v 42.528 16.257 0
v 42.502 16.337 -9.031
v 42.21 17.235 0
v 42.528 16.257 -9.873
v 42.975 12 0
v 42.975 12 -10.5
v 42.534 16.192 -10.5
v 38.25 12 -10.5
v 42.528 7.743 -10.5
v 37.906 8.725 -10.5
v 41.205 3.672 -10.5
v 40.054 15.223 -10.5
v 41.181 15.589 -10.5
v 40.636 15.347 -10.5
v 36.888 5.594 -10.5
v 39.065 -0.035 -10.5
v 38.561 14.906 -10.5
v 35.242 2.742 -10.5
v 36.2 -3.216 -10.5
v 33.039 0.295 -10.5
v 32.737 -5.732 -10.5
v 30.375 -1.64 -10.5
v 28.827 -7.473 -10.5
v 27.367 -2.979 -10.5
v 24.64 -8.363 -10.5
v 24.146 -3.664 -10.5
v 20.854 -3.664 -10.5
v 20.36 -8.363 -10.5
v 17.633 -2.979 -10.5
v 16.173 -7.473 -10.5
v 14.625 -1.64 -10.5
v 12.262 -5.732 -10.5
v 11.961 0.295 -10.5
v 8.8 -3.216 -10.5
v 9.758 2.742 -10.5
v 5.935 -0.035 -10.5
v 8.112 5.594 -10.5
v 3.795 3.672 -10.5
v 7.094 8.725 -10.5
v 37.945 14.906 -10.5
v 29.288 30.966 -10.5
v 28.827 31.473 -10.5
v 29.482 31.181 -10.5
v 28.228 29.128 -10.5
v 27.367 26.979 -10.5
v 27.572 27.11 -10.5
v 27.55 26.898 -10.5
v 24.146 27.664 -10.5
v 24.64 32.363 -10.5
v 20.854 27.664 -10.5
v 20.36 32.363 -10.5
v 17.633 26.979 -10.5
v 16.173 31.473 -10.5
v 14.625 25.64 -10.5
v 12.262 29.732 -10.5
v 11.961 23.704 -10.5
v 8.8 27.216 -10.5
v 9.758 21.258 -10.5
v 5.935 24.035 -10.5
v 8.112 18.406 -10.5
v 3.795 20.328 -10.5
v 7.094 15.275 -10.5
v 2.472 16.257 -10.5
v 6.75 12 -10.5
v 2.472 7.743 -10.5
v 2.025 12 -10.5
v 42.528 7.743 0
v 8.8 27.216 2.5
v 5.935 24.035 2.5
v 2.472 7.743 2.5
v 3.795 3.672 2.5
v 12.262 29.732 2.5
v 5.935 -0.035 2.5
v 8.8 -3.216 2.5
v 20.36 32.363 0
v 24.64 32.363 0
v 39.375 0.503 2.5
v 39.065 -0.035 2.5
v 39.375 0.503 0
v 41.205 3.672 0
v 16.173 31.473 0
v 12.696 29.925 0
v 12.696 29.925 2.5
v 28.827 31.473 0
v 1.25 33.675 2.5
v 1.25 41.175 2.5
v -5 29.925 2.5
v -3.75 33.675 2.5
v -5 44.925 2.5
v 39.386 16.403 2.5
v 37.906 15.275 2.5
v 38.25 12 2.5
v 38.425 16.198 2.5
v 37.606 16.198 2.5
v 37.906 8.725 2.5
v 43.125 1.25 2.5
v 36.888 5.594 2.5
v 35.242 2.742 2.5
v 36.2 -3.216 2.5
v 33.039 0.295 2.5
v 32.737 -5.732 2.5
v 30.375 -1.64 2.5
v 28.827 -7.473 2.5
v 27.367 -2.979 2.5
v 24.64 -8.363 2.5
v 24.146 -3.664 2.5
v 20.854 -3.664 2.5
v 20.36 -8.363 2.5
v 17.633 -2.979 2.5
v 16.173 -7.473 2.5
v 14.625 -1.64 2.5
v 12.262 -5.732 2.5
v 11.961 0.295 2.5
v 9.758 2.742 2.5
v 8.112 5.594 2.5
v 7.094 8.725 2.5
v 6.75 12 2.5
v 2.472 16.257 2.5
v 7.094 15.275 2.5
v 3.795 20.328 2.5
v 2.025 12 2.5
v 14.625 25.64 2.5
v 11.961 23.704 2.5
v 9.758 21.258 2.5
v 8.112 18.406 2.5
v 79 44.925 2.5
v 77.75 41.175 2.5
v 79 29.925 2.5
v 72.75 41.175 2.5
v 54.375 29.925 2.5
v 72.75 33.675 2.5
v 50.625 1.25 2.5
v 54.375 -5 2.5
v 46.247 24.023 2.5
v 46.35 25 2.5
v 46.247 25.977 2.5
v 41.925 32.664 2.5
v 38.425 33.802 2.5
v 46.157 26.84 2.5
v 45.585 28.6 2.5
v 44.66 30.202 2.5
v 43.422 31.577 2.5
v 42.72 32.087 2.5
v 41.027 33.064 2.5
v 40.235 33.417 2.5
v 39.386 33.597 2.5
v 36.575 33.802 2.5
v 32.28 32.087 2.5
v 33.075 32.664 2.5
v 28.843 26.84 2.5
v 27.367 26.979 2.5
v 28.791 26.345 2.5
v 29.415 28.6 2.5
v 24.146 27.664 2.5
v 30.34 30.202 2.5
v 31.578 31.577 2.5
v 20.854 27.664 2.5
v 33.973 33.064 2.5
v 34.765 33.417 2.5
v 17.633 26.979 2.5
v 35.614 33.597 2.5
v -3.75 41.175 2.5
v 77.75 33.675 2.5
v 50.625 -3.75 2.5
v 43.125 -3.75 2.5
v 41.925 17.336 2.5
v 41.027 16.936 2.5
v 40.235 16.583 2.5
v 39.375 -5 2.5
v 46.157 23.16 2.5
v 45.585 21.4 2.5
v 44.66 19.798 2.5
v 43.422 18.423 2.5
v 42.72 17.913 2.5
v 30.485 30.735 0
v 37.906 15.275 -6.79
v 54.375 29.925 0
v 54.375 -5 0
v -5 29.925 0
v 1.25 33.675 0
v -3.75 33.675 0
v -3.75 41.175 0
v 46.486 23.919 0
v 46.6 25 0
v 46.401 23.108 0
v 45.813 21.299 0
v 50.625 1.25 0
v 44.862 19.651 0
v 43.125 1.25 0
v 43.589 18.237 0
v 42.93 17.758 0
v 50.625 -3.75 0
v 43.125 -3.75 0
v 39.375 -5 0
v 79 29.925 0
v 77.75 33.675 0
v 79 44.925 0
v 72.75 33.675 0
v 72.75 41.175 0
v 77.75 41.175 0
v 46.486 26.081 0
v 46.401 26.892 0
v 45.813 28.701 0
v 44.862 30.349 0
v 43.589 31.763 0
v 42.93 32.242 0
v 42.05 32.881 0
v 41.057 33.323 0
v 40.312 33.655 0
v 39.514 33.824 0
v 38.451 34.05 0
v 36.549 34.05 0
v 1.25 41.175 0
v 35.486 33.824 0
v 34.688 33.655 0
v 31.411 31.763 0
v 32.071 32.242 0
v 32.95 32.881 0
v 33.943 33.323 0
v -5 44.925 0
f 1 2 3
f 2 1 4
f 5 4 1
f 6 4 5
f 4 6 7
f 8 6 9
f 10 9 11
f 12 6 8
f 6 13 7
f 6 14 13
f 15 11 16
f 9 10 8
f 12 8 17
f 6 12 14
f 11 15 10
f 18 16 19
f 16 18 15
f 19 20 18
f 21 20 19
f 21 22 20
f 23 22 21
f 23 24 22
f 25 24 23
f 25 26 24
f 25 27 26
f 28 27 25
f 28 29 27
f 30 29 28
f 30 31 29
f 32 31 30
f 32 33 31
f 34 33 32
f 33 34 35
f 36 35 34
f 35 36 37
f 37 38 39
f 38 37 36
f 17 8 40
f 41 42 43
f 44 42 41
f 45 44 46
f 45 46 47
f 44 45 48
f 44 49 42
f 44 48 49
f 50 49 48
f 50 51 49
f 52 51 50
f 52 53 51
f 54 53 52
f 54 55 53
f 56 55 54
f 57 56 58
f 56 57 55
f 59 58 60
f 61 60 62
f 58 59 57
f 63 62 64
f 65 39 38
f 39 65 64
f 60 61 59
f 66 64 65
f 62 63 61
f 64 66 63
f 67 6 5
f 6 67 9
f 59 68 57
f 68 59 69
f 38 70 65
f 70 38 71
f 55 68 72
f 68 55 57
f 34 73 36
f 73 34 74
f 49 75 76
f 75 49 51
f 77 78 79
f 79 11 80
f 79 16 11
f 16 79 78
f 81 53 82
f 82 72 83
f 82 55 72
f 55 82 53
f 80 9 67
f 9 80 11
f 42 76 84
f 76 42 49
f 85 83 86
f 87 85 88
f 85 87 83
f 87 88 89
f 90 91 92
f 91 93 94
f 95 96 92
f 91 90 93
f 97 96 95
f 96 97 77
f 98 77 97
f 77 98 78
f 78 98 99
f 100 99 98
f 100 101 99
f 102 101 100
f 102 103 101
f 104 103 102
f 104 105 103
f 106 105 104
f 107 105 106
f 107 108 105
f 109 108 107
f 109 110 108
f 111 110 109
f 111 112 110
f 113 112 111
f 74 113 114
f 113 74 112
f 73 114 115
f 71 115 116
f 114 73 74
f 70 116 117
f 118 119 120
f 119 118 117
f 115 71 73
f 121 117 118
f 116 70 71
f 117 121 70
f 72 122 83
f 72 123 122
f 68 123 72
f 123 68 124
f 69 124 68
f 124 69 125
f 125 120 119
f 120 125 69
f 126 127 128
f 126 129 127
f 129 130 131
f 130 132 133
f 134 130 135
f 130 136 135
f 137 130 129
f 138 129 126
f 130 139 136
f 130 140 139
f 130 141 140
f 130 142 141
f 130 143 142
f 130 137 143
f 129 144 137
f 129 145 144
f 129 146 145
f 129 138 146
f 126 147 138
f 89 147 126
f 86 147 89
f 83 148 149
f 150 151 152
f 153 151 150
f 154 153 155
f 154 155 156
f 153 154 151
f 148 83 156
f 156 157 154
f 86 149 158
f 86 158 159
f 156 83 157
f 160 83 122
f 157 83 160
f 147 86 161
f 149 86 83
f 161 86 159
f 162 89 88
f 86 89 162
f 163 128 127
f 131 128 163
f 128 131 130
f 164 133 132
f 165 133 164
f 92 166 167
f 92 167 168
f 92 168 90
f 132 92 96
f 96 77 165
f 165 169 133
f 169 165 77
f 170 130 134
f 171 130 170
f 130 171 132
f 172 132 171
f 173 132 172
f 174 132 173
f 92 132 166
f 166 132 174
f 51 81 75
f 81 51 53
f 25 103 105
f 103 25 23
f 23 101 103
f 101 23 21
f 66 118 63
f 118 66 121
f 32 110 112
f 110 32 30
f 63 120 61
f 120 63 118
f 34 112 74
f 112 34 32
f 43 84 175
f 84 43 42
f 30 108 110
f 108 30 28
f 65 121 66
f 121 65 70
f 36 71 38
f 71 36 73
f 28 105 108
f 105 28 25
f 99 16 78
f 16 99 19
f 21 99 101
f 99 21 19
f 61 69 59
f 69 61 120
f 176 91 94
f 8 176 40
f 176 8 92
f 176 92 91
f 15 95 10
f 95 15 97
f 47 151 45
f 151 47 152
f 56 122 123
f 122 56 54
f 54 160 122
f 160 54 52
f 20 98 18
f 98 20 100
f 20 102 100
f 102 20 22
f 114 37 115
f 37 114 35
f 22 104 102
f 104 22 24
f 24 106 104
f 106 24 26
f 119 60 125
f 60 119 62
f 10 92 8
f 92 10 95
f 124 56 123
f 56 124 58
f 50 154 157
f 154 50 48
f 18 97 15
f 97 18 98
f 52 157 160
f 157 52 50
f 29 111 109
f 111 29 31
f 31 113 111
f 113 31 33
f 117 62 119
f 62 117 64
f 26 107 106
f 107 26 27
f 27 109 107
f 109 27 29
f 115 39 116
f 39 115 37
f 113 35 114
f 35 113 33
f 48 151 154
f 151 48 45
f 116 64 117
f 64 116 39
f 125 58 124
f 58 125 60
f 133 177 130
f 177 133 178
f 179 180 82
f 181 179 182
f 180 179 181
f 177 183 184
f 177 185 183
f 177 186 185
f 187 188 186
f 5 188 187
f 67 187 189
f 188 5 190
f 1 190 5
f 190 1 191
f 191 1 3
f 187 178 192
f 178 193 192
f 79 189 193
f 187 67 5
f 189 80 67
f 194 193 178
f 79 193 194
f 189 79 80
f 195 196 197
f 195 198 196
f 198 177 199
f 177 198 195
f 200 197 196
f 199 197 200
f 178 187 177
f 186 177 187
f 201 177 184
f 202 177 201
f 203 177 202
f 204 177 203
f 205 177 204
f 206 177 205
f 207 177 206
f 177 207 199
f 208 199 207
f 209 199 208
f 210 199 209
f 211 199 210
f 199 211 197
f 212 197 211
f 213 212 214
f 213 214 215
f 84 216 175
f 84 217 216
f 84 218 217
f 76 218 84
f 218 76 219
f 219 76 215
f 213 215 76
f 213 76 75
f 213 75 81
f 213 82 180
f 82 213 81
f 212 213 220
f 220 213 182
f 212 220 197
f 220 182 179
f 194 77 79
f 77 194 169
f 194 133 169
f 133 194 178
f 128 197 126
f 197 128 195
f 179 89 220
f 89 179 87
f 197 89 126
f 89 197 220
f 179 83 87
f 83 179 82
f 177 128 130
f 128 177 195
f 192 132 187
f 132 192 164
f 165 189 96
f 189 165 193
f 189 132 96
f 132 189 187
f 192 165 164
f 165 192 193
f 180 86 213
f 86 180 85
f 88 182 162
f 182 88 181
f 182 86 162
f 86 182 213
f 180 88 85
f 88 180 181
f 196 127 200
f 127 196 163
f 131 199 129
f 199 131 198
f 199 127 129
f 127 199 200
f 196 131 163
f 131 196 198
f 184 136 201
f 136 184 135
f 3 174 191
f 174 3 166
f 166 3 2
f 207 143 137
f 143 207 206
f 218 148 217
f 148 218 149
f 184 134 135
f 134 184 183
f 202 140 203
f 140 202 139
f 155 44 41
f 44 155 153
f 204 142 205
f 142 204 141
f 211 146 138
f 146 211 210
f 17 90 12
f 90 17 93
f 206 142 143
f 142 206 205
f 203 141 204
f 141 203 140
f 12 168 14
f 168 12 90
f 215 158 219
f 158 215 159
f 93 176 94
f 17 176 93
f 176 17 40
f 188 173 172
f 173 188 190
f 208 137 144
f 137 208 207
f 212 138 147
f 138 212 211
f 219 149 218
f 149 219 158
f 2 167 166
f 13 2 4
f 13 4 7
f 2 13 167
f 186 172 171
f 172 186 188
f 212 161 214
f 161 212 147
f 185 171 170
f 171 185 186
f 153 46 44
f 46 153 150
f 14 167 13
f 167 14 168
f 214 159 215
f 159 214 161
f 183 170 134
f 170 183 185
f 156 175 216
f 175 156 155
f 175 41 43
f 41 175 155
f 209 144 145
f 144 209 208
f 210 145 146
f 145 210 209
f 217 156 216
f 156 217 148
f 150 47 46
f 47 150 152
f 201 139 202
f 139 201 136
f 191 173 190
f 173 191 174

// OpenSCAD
monocular_diameter = 31.5;
monocular_depth = 13;

phone_depth = 2.5;
phone_strip = 15;
phone_tooth = 5;
phone_width = 74;

cam_x = 22.5;
cam_y = 12;

finger_print_diameter = 13;
finger_print_x = 37.5;
finger_print_y = 25;

clip_height = 12;
clip_length = 5;

module monocular() {
    //holder for the monocular
    difference() {
        cylinder(d = 1.3 * monocular_diameter, h = monocular_depth );
        translate([0,0, -0.5*monocular_depth]) cylinder(d = monocular_diameter, h = 2*monocular_depth );
    }
}

module phone() {
    //attachement to the phone
    difference() {
        union() {
            //vertical bar
            translate([ 1.25*monocular_diameter, -phone_tooth, 0])
            cube([phone_strip, 1.25*monocular_diameter+2*phone_tooth, phone_depth]);
            
            //horizontal bar
            translate([ -phone_tooth, 0.95 * monocular_diameter, 0])
            cube([phone_width + 2*phone_tooth, phone_strip,  phone_depth]);
        }
    
        //holes for teeth: upper
        translate([1.25*monocular_diameter+0.25*phone_strip, -0.75*phone_tooth, -2*phone_depth])
        cube([0.5*phone_strip, phone_tooth, 5*phone_depth]);
    
        //holes for teeth: right
        translate([-0.75*phone_tooth, 0.95*monocular_diameter+0.25*phone_strip, -2*phone_depth])
        cube([phone_tooth, 0.5*phone_strip, 5*phone_depth]);
    
        //holes for teeth: left
        translate([phone_width-0.25*phone_tooth, 0.95*monocular_diameter+0.25*phone_strip, -2*phone_depth])
        cube([phone_tooth, 0.5*phone_strip, 5*phone_depth]);
    } 
}

module finger_print() {
    cylinder( d1 = 2*finger_print_diameter, d2 = finger_print_diameter, h = 5 * max( monocular_depth, phone_depth ) );
}

difference() {
    union() {
        translate([cam_x, cam_y, phone_depth-monocular_depth]) monocular();
        phone();
    }
    translate([finger_print_x, finger_print_y, -3*max( monocular_depth, phone_depth) ])
        finger_print();
}
